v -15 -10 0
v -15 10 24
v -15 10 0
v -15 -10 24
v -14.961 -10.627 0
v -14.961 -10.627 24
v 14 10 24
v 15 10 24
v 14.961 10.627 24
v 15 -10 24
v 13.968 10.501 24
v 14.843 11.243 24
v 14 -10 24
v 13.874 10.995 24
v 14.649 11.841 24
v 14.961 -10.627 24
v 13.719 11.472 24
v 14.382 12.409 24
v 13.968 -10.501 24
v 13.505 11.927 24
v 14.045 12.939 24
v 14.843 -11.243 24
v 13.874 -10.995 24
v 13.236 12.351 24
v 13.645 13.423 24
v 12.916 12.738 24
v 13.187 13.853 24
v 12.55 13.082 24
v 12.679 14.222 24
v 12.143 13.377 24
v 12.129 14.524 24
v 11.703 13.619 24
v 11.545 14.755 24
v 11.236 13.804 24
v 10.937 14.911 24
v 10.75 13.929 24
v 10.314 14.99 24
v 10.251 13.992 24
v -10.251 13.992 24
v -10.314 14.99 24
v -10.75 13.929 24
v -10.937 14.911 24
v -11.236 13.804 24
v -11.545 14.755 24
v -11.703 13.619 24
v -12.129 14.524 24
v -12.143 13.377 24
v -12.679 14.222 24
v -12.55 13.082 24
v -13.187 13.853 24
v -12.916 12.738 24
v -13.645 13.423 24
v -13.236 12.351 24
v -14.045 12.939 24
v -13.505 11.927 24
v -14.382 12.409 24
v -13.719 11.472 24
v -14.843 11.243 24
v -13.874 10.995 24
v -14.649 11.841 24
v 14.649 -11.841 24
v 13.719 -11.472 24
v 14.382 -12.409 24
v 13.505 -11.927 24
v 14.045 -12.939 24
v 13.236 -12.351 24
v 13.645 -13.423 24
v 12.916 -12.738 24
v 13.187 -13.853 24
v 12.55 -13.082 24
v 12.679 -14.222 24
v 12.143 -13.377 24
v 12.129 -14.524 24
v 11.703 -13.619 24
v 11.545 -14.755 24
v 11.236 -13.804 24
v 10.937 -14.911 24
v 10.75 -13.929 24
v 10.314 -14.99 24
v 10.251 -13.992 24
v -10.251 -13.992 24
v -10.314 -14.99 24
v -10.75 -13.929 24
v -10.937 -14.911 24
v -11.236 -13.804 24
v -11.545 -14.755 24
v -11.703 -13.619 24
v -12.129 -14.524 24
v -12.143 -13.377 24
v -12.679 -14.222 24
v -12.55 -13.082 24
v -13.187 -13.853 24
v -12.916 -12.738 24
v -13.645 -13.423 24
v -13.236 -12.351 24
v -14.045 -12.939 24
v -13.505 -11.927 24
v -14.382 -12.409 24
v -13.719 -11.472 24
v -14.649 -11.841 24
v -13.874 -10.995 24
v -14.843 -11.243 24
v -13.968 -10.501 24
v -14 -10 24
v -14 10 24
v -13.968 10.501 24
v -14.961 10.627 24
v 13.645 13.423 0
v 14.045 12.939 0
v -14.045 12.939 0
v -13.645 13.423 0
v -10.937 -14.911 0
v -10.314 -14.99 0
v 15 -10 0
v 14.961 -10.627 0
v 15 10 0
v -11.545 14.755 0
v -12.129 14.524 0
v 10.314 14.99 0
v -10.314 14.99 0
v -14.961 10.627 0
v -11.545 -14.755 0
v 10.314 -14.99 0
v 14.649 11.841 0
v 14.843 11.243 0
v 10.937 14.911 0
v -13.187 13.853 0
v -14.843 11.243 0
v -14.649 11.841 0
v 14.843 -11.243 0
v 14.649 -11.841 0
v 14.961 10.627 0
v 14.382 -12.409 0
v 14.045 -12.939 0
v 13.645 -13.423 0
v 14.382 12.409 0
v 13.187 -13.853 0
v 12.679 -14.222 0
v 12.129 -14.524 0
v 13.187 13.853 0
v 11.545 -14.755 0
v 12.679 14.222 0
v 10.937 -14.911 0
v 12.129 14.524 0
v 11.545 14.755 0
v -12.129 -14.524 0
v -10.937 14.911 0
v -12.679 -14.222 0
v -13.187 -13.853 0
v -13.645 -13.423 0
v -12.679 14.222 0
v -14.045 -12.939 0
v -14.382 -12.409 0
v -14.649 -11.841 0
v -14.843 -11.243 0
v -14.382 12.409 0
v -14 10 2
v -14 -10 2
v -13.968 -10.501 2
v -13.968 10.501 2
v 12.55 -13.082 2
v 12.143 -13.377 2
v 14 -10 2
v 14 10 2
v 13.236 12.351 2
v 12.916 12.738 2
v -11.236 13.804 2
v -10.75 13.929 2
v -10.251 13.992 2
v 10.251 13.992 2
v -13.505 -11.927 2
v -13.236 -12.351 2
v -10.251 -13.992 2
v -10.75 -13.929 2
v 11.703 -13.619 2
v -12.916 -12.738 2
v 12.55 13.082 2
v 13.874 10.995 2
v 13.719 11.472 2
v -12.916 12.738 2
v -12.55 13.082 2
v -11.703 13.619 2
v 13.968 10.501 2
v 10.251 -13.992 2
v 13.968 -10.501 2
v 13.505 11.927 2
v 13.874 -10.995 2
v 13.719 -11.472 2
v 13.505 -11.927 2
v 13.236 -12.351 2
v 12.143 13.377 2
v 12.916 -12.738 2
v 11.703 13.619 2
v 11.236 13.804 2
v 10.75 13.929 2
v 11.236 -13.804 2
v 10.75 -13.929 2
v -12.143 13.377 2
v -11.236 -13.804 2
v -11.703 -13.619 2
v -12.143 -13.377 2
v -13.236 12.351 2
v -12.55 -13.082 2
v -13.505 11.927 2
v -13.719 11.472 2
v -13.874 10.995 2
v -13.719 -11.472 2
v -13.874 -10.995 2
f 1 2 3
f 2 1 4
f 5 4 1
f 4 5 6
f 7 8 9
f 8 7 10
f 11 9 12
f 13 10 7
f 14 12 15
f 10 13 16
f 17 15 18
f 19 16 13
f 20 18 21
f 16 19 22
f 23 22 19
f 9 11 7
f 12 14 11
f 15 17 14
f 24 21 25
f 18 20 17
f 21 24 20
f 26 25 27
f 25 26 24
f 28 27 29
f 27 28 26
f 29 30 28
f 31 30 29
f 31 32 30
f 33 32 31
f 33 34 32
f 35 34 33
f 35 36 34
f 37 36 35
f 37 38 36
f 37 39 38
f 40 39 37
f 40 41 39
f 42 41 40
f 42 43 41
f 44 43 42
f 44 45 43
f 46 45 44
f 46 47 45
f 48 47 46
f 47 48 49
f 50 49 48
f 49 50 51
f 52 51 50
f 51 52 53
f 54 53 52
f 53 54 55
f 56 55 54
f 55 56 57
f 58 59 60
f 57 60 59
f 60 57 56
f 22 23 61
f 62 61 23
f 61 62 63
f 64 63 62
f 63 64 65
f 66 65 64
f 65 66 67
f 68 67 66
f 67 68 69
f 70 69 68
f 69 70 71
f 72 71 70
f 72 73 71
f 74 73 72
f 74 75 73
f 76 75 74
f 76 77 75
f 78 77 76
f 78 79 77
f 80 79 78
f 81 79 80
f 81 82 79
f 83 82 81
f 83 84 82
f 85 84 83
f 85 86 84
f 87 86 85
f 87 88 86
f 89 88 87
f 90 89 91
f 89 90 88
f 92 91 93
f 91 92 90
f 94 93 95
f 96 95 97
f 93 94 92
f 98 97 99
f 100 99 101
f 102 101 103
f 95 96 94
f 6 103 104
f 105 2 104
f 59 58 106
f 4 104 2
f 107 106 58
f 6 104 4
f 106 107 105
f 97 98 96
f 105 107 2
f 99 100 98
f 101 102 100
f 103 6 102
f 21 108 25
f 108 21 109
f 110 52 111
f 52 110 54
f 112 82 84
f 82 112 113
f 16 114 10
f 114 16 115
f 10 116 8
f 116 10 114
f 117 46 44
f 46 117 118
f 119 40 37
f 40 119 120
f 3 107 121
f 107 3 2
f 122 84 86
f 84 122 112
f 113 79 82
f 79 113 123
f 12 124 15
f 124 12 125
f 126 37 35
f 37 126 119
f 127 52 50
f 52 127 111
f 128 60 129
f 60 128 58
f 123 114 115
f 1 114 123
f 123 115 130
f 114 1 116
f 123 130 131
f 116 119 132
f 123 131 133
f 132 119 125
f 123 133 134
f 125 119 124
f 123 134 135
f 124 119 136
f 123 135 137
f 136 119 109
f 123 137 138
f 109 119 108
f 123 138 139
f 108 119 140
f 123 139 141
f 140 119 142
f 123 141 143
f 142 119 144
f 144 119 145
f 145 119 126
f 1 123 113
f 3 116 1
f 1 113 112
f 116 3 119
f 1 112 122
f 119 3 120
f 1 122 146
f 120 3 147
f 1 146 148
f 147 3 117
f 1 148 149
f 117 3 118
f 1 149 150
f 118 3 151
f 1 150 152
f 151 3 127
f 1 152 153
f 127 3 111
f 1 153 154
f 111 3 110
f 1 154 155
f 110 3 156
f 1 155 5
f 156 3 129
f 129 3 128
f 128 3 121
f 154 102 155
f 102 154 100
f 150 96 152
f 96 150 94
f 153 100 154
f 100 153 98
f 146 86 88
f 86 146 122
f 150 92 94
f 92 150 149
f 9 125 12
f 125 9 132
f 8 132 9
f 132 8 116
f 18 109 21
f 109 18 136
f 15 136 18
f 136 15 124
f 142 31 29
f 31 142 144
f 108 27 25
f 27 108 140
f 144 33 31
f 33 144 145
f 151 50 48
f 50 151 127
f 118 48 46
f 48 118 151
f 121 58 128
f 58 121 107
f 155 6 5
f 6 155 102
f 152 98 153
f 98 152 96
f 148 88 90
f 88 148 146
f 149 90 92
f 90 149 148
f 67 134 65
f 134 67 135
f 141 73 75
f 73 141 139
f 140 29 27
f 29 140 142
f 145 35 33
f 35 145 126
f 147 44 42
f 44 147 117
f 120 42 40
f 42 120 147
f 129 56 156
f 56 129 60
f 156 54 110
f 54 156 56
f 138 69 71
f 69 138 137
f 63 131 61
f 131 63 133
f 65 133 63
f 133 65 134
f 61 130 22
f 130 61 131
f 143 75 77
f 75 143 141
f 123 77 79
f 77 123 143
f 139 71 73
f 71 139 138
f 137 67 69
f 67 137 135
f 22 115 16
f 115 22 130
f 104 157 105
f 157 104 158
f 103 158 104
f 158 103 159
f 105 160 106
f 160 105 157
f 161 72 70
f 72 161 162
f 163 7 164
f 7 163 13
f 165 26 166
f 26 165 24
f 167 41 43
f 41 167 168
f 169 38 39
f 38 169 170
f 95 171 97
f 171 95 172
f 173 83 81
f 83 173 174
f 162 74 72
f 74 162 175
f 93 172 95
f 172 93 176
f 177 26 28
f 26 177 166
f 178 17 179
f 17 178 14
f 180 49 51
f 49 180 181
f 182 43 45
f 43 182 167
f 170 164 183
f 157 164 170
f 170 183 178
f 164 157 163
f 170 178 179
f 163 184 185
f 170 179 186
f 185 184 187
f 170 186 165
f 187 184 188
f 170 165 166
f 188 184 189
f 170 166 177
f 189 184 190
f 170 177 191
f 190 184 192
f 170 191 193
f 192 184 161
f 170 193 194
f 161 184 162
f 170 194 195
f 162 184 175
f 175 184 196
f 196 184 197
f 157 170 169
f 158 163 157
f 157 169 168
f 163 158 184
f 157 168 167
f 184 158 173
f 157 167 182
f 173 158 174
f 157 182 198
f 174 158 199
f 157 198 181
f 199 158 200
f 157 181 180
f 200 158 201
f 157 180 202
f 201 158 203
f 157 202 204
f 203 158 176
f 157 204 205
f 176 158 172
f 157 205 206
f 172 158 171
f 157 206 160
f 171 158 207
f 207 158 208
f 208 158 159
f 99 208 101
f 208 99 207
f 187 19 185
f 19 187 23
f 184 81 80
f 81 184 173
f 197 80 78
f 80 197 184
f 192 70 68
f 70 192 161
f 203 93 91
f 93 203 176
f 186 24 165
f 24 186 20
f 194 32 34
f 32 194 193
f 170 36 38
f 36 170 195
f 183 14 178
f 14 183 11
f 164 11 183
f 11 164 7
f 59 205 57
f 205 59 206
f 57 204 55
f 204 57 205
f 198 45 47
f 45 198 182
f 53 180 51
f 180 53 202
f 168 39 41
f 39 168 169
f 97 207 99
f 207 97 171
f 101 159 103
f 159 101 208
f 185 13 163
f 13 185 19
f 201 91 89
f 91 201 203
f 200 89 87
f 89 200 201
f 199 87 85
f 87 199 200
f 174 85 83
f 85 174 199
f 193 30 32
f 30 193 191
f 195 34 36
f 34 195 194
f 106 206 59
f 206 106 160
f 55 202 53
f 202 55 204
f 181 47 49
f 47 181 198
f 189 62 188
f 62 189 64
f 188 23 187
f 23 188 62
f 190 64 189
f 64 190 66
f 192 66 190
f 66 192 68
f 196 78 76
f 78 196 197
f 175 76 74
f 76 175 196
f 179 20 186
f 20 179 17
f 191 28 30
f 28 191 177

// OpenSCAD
$fn = 50;


difference() {
	union() {
		hull() {
			translate(v = [-10.0000000000, 10.0000000000, 0]) {
				cylinder(h = 24, r = 5);
			}
			translate(v = [10.0000000000, 10.0000000000, 0]) {
				cylinder(h = 24, r = 5);
			}
			translate(v = [-10.0000000000, -10.0000000000, 0]) {
				cylinder(h = 24, r = 5);
			}
			translate(v = [10.0000000000, -10.0000000000, 0]) {
				cylinder(h = 24, r = 5);
			}
		}
	}
	union() {
		translate(v = [0, 0, 2]) {
			hull() {
				translate(v = [-10.0000000000, 10.0000000000, 0]) {
					cylinder(h = 22, r = 4);
				}
				translate(v = [10.0000000000, 10.0000000000, 0]) {
					cylinder(h = 22, r = 4);
				}
				translate(v = [-10.0000000000, -10.0000000000, 0]) {
					cylinder(h = 22, r = 4);
				}
				translate(v = [10.0000000000, -10.0000000000, 0]) {
					cylinder(h = 22, r = 4);
				}
			}
		}
	}
}
